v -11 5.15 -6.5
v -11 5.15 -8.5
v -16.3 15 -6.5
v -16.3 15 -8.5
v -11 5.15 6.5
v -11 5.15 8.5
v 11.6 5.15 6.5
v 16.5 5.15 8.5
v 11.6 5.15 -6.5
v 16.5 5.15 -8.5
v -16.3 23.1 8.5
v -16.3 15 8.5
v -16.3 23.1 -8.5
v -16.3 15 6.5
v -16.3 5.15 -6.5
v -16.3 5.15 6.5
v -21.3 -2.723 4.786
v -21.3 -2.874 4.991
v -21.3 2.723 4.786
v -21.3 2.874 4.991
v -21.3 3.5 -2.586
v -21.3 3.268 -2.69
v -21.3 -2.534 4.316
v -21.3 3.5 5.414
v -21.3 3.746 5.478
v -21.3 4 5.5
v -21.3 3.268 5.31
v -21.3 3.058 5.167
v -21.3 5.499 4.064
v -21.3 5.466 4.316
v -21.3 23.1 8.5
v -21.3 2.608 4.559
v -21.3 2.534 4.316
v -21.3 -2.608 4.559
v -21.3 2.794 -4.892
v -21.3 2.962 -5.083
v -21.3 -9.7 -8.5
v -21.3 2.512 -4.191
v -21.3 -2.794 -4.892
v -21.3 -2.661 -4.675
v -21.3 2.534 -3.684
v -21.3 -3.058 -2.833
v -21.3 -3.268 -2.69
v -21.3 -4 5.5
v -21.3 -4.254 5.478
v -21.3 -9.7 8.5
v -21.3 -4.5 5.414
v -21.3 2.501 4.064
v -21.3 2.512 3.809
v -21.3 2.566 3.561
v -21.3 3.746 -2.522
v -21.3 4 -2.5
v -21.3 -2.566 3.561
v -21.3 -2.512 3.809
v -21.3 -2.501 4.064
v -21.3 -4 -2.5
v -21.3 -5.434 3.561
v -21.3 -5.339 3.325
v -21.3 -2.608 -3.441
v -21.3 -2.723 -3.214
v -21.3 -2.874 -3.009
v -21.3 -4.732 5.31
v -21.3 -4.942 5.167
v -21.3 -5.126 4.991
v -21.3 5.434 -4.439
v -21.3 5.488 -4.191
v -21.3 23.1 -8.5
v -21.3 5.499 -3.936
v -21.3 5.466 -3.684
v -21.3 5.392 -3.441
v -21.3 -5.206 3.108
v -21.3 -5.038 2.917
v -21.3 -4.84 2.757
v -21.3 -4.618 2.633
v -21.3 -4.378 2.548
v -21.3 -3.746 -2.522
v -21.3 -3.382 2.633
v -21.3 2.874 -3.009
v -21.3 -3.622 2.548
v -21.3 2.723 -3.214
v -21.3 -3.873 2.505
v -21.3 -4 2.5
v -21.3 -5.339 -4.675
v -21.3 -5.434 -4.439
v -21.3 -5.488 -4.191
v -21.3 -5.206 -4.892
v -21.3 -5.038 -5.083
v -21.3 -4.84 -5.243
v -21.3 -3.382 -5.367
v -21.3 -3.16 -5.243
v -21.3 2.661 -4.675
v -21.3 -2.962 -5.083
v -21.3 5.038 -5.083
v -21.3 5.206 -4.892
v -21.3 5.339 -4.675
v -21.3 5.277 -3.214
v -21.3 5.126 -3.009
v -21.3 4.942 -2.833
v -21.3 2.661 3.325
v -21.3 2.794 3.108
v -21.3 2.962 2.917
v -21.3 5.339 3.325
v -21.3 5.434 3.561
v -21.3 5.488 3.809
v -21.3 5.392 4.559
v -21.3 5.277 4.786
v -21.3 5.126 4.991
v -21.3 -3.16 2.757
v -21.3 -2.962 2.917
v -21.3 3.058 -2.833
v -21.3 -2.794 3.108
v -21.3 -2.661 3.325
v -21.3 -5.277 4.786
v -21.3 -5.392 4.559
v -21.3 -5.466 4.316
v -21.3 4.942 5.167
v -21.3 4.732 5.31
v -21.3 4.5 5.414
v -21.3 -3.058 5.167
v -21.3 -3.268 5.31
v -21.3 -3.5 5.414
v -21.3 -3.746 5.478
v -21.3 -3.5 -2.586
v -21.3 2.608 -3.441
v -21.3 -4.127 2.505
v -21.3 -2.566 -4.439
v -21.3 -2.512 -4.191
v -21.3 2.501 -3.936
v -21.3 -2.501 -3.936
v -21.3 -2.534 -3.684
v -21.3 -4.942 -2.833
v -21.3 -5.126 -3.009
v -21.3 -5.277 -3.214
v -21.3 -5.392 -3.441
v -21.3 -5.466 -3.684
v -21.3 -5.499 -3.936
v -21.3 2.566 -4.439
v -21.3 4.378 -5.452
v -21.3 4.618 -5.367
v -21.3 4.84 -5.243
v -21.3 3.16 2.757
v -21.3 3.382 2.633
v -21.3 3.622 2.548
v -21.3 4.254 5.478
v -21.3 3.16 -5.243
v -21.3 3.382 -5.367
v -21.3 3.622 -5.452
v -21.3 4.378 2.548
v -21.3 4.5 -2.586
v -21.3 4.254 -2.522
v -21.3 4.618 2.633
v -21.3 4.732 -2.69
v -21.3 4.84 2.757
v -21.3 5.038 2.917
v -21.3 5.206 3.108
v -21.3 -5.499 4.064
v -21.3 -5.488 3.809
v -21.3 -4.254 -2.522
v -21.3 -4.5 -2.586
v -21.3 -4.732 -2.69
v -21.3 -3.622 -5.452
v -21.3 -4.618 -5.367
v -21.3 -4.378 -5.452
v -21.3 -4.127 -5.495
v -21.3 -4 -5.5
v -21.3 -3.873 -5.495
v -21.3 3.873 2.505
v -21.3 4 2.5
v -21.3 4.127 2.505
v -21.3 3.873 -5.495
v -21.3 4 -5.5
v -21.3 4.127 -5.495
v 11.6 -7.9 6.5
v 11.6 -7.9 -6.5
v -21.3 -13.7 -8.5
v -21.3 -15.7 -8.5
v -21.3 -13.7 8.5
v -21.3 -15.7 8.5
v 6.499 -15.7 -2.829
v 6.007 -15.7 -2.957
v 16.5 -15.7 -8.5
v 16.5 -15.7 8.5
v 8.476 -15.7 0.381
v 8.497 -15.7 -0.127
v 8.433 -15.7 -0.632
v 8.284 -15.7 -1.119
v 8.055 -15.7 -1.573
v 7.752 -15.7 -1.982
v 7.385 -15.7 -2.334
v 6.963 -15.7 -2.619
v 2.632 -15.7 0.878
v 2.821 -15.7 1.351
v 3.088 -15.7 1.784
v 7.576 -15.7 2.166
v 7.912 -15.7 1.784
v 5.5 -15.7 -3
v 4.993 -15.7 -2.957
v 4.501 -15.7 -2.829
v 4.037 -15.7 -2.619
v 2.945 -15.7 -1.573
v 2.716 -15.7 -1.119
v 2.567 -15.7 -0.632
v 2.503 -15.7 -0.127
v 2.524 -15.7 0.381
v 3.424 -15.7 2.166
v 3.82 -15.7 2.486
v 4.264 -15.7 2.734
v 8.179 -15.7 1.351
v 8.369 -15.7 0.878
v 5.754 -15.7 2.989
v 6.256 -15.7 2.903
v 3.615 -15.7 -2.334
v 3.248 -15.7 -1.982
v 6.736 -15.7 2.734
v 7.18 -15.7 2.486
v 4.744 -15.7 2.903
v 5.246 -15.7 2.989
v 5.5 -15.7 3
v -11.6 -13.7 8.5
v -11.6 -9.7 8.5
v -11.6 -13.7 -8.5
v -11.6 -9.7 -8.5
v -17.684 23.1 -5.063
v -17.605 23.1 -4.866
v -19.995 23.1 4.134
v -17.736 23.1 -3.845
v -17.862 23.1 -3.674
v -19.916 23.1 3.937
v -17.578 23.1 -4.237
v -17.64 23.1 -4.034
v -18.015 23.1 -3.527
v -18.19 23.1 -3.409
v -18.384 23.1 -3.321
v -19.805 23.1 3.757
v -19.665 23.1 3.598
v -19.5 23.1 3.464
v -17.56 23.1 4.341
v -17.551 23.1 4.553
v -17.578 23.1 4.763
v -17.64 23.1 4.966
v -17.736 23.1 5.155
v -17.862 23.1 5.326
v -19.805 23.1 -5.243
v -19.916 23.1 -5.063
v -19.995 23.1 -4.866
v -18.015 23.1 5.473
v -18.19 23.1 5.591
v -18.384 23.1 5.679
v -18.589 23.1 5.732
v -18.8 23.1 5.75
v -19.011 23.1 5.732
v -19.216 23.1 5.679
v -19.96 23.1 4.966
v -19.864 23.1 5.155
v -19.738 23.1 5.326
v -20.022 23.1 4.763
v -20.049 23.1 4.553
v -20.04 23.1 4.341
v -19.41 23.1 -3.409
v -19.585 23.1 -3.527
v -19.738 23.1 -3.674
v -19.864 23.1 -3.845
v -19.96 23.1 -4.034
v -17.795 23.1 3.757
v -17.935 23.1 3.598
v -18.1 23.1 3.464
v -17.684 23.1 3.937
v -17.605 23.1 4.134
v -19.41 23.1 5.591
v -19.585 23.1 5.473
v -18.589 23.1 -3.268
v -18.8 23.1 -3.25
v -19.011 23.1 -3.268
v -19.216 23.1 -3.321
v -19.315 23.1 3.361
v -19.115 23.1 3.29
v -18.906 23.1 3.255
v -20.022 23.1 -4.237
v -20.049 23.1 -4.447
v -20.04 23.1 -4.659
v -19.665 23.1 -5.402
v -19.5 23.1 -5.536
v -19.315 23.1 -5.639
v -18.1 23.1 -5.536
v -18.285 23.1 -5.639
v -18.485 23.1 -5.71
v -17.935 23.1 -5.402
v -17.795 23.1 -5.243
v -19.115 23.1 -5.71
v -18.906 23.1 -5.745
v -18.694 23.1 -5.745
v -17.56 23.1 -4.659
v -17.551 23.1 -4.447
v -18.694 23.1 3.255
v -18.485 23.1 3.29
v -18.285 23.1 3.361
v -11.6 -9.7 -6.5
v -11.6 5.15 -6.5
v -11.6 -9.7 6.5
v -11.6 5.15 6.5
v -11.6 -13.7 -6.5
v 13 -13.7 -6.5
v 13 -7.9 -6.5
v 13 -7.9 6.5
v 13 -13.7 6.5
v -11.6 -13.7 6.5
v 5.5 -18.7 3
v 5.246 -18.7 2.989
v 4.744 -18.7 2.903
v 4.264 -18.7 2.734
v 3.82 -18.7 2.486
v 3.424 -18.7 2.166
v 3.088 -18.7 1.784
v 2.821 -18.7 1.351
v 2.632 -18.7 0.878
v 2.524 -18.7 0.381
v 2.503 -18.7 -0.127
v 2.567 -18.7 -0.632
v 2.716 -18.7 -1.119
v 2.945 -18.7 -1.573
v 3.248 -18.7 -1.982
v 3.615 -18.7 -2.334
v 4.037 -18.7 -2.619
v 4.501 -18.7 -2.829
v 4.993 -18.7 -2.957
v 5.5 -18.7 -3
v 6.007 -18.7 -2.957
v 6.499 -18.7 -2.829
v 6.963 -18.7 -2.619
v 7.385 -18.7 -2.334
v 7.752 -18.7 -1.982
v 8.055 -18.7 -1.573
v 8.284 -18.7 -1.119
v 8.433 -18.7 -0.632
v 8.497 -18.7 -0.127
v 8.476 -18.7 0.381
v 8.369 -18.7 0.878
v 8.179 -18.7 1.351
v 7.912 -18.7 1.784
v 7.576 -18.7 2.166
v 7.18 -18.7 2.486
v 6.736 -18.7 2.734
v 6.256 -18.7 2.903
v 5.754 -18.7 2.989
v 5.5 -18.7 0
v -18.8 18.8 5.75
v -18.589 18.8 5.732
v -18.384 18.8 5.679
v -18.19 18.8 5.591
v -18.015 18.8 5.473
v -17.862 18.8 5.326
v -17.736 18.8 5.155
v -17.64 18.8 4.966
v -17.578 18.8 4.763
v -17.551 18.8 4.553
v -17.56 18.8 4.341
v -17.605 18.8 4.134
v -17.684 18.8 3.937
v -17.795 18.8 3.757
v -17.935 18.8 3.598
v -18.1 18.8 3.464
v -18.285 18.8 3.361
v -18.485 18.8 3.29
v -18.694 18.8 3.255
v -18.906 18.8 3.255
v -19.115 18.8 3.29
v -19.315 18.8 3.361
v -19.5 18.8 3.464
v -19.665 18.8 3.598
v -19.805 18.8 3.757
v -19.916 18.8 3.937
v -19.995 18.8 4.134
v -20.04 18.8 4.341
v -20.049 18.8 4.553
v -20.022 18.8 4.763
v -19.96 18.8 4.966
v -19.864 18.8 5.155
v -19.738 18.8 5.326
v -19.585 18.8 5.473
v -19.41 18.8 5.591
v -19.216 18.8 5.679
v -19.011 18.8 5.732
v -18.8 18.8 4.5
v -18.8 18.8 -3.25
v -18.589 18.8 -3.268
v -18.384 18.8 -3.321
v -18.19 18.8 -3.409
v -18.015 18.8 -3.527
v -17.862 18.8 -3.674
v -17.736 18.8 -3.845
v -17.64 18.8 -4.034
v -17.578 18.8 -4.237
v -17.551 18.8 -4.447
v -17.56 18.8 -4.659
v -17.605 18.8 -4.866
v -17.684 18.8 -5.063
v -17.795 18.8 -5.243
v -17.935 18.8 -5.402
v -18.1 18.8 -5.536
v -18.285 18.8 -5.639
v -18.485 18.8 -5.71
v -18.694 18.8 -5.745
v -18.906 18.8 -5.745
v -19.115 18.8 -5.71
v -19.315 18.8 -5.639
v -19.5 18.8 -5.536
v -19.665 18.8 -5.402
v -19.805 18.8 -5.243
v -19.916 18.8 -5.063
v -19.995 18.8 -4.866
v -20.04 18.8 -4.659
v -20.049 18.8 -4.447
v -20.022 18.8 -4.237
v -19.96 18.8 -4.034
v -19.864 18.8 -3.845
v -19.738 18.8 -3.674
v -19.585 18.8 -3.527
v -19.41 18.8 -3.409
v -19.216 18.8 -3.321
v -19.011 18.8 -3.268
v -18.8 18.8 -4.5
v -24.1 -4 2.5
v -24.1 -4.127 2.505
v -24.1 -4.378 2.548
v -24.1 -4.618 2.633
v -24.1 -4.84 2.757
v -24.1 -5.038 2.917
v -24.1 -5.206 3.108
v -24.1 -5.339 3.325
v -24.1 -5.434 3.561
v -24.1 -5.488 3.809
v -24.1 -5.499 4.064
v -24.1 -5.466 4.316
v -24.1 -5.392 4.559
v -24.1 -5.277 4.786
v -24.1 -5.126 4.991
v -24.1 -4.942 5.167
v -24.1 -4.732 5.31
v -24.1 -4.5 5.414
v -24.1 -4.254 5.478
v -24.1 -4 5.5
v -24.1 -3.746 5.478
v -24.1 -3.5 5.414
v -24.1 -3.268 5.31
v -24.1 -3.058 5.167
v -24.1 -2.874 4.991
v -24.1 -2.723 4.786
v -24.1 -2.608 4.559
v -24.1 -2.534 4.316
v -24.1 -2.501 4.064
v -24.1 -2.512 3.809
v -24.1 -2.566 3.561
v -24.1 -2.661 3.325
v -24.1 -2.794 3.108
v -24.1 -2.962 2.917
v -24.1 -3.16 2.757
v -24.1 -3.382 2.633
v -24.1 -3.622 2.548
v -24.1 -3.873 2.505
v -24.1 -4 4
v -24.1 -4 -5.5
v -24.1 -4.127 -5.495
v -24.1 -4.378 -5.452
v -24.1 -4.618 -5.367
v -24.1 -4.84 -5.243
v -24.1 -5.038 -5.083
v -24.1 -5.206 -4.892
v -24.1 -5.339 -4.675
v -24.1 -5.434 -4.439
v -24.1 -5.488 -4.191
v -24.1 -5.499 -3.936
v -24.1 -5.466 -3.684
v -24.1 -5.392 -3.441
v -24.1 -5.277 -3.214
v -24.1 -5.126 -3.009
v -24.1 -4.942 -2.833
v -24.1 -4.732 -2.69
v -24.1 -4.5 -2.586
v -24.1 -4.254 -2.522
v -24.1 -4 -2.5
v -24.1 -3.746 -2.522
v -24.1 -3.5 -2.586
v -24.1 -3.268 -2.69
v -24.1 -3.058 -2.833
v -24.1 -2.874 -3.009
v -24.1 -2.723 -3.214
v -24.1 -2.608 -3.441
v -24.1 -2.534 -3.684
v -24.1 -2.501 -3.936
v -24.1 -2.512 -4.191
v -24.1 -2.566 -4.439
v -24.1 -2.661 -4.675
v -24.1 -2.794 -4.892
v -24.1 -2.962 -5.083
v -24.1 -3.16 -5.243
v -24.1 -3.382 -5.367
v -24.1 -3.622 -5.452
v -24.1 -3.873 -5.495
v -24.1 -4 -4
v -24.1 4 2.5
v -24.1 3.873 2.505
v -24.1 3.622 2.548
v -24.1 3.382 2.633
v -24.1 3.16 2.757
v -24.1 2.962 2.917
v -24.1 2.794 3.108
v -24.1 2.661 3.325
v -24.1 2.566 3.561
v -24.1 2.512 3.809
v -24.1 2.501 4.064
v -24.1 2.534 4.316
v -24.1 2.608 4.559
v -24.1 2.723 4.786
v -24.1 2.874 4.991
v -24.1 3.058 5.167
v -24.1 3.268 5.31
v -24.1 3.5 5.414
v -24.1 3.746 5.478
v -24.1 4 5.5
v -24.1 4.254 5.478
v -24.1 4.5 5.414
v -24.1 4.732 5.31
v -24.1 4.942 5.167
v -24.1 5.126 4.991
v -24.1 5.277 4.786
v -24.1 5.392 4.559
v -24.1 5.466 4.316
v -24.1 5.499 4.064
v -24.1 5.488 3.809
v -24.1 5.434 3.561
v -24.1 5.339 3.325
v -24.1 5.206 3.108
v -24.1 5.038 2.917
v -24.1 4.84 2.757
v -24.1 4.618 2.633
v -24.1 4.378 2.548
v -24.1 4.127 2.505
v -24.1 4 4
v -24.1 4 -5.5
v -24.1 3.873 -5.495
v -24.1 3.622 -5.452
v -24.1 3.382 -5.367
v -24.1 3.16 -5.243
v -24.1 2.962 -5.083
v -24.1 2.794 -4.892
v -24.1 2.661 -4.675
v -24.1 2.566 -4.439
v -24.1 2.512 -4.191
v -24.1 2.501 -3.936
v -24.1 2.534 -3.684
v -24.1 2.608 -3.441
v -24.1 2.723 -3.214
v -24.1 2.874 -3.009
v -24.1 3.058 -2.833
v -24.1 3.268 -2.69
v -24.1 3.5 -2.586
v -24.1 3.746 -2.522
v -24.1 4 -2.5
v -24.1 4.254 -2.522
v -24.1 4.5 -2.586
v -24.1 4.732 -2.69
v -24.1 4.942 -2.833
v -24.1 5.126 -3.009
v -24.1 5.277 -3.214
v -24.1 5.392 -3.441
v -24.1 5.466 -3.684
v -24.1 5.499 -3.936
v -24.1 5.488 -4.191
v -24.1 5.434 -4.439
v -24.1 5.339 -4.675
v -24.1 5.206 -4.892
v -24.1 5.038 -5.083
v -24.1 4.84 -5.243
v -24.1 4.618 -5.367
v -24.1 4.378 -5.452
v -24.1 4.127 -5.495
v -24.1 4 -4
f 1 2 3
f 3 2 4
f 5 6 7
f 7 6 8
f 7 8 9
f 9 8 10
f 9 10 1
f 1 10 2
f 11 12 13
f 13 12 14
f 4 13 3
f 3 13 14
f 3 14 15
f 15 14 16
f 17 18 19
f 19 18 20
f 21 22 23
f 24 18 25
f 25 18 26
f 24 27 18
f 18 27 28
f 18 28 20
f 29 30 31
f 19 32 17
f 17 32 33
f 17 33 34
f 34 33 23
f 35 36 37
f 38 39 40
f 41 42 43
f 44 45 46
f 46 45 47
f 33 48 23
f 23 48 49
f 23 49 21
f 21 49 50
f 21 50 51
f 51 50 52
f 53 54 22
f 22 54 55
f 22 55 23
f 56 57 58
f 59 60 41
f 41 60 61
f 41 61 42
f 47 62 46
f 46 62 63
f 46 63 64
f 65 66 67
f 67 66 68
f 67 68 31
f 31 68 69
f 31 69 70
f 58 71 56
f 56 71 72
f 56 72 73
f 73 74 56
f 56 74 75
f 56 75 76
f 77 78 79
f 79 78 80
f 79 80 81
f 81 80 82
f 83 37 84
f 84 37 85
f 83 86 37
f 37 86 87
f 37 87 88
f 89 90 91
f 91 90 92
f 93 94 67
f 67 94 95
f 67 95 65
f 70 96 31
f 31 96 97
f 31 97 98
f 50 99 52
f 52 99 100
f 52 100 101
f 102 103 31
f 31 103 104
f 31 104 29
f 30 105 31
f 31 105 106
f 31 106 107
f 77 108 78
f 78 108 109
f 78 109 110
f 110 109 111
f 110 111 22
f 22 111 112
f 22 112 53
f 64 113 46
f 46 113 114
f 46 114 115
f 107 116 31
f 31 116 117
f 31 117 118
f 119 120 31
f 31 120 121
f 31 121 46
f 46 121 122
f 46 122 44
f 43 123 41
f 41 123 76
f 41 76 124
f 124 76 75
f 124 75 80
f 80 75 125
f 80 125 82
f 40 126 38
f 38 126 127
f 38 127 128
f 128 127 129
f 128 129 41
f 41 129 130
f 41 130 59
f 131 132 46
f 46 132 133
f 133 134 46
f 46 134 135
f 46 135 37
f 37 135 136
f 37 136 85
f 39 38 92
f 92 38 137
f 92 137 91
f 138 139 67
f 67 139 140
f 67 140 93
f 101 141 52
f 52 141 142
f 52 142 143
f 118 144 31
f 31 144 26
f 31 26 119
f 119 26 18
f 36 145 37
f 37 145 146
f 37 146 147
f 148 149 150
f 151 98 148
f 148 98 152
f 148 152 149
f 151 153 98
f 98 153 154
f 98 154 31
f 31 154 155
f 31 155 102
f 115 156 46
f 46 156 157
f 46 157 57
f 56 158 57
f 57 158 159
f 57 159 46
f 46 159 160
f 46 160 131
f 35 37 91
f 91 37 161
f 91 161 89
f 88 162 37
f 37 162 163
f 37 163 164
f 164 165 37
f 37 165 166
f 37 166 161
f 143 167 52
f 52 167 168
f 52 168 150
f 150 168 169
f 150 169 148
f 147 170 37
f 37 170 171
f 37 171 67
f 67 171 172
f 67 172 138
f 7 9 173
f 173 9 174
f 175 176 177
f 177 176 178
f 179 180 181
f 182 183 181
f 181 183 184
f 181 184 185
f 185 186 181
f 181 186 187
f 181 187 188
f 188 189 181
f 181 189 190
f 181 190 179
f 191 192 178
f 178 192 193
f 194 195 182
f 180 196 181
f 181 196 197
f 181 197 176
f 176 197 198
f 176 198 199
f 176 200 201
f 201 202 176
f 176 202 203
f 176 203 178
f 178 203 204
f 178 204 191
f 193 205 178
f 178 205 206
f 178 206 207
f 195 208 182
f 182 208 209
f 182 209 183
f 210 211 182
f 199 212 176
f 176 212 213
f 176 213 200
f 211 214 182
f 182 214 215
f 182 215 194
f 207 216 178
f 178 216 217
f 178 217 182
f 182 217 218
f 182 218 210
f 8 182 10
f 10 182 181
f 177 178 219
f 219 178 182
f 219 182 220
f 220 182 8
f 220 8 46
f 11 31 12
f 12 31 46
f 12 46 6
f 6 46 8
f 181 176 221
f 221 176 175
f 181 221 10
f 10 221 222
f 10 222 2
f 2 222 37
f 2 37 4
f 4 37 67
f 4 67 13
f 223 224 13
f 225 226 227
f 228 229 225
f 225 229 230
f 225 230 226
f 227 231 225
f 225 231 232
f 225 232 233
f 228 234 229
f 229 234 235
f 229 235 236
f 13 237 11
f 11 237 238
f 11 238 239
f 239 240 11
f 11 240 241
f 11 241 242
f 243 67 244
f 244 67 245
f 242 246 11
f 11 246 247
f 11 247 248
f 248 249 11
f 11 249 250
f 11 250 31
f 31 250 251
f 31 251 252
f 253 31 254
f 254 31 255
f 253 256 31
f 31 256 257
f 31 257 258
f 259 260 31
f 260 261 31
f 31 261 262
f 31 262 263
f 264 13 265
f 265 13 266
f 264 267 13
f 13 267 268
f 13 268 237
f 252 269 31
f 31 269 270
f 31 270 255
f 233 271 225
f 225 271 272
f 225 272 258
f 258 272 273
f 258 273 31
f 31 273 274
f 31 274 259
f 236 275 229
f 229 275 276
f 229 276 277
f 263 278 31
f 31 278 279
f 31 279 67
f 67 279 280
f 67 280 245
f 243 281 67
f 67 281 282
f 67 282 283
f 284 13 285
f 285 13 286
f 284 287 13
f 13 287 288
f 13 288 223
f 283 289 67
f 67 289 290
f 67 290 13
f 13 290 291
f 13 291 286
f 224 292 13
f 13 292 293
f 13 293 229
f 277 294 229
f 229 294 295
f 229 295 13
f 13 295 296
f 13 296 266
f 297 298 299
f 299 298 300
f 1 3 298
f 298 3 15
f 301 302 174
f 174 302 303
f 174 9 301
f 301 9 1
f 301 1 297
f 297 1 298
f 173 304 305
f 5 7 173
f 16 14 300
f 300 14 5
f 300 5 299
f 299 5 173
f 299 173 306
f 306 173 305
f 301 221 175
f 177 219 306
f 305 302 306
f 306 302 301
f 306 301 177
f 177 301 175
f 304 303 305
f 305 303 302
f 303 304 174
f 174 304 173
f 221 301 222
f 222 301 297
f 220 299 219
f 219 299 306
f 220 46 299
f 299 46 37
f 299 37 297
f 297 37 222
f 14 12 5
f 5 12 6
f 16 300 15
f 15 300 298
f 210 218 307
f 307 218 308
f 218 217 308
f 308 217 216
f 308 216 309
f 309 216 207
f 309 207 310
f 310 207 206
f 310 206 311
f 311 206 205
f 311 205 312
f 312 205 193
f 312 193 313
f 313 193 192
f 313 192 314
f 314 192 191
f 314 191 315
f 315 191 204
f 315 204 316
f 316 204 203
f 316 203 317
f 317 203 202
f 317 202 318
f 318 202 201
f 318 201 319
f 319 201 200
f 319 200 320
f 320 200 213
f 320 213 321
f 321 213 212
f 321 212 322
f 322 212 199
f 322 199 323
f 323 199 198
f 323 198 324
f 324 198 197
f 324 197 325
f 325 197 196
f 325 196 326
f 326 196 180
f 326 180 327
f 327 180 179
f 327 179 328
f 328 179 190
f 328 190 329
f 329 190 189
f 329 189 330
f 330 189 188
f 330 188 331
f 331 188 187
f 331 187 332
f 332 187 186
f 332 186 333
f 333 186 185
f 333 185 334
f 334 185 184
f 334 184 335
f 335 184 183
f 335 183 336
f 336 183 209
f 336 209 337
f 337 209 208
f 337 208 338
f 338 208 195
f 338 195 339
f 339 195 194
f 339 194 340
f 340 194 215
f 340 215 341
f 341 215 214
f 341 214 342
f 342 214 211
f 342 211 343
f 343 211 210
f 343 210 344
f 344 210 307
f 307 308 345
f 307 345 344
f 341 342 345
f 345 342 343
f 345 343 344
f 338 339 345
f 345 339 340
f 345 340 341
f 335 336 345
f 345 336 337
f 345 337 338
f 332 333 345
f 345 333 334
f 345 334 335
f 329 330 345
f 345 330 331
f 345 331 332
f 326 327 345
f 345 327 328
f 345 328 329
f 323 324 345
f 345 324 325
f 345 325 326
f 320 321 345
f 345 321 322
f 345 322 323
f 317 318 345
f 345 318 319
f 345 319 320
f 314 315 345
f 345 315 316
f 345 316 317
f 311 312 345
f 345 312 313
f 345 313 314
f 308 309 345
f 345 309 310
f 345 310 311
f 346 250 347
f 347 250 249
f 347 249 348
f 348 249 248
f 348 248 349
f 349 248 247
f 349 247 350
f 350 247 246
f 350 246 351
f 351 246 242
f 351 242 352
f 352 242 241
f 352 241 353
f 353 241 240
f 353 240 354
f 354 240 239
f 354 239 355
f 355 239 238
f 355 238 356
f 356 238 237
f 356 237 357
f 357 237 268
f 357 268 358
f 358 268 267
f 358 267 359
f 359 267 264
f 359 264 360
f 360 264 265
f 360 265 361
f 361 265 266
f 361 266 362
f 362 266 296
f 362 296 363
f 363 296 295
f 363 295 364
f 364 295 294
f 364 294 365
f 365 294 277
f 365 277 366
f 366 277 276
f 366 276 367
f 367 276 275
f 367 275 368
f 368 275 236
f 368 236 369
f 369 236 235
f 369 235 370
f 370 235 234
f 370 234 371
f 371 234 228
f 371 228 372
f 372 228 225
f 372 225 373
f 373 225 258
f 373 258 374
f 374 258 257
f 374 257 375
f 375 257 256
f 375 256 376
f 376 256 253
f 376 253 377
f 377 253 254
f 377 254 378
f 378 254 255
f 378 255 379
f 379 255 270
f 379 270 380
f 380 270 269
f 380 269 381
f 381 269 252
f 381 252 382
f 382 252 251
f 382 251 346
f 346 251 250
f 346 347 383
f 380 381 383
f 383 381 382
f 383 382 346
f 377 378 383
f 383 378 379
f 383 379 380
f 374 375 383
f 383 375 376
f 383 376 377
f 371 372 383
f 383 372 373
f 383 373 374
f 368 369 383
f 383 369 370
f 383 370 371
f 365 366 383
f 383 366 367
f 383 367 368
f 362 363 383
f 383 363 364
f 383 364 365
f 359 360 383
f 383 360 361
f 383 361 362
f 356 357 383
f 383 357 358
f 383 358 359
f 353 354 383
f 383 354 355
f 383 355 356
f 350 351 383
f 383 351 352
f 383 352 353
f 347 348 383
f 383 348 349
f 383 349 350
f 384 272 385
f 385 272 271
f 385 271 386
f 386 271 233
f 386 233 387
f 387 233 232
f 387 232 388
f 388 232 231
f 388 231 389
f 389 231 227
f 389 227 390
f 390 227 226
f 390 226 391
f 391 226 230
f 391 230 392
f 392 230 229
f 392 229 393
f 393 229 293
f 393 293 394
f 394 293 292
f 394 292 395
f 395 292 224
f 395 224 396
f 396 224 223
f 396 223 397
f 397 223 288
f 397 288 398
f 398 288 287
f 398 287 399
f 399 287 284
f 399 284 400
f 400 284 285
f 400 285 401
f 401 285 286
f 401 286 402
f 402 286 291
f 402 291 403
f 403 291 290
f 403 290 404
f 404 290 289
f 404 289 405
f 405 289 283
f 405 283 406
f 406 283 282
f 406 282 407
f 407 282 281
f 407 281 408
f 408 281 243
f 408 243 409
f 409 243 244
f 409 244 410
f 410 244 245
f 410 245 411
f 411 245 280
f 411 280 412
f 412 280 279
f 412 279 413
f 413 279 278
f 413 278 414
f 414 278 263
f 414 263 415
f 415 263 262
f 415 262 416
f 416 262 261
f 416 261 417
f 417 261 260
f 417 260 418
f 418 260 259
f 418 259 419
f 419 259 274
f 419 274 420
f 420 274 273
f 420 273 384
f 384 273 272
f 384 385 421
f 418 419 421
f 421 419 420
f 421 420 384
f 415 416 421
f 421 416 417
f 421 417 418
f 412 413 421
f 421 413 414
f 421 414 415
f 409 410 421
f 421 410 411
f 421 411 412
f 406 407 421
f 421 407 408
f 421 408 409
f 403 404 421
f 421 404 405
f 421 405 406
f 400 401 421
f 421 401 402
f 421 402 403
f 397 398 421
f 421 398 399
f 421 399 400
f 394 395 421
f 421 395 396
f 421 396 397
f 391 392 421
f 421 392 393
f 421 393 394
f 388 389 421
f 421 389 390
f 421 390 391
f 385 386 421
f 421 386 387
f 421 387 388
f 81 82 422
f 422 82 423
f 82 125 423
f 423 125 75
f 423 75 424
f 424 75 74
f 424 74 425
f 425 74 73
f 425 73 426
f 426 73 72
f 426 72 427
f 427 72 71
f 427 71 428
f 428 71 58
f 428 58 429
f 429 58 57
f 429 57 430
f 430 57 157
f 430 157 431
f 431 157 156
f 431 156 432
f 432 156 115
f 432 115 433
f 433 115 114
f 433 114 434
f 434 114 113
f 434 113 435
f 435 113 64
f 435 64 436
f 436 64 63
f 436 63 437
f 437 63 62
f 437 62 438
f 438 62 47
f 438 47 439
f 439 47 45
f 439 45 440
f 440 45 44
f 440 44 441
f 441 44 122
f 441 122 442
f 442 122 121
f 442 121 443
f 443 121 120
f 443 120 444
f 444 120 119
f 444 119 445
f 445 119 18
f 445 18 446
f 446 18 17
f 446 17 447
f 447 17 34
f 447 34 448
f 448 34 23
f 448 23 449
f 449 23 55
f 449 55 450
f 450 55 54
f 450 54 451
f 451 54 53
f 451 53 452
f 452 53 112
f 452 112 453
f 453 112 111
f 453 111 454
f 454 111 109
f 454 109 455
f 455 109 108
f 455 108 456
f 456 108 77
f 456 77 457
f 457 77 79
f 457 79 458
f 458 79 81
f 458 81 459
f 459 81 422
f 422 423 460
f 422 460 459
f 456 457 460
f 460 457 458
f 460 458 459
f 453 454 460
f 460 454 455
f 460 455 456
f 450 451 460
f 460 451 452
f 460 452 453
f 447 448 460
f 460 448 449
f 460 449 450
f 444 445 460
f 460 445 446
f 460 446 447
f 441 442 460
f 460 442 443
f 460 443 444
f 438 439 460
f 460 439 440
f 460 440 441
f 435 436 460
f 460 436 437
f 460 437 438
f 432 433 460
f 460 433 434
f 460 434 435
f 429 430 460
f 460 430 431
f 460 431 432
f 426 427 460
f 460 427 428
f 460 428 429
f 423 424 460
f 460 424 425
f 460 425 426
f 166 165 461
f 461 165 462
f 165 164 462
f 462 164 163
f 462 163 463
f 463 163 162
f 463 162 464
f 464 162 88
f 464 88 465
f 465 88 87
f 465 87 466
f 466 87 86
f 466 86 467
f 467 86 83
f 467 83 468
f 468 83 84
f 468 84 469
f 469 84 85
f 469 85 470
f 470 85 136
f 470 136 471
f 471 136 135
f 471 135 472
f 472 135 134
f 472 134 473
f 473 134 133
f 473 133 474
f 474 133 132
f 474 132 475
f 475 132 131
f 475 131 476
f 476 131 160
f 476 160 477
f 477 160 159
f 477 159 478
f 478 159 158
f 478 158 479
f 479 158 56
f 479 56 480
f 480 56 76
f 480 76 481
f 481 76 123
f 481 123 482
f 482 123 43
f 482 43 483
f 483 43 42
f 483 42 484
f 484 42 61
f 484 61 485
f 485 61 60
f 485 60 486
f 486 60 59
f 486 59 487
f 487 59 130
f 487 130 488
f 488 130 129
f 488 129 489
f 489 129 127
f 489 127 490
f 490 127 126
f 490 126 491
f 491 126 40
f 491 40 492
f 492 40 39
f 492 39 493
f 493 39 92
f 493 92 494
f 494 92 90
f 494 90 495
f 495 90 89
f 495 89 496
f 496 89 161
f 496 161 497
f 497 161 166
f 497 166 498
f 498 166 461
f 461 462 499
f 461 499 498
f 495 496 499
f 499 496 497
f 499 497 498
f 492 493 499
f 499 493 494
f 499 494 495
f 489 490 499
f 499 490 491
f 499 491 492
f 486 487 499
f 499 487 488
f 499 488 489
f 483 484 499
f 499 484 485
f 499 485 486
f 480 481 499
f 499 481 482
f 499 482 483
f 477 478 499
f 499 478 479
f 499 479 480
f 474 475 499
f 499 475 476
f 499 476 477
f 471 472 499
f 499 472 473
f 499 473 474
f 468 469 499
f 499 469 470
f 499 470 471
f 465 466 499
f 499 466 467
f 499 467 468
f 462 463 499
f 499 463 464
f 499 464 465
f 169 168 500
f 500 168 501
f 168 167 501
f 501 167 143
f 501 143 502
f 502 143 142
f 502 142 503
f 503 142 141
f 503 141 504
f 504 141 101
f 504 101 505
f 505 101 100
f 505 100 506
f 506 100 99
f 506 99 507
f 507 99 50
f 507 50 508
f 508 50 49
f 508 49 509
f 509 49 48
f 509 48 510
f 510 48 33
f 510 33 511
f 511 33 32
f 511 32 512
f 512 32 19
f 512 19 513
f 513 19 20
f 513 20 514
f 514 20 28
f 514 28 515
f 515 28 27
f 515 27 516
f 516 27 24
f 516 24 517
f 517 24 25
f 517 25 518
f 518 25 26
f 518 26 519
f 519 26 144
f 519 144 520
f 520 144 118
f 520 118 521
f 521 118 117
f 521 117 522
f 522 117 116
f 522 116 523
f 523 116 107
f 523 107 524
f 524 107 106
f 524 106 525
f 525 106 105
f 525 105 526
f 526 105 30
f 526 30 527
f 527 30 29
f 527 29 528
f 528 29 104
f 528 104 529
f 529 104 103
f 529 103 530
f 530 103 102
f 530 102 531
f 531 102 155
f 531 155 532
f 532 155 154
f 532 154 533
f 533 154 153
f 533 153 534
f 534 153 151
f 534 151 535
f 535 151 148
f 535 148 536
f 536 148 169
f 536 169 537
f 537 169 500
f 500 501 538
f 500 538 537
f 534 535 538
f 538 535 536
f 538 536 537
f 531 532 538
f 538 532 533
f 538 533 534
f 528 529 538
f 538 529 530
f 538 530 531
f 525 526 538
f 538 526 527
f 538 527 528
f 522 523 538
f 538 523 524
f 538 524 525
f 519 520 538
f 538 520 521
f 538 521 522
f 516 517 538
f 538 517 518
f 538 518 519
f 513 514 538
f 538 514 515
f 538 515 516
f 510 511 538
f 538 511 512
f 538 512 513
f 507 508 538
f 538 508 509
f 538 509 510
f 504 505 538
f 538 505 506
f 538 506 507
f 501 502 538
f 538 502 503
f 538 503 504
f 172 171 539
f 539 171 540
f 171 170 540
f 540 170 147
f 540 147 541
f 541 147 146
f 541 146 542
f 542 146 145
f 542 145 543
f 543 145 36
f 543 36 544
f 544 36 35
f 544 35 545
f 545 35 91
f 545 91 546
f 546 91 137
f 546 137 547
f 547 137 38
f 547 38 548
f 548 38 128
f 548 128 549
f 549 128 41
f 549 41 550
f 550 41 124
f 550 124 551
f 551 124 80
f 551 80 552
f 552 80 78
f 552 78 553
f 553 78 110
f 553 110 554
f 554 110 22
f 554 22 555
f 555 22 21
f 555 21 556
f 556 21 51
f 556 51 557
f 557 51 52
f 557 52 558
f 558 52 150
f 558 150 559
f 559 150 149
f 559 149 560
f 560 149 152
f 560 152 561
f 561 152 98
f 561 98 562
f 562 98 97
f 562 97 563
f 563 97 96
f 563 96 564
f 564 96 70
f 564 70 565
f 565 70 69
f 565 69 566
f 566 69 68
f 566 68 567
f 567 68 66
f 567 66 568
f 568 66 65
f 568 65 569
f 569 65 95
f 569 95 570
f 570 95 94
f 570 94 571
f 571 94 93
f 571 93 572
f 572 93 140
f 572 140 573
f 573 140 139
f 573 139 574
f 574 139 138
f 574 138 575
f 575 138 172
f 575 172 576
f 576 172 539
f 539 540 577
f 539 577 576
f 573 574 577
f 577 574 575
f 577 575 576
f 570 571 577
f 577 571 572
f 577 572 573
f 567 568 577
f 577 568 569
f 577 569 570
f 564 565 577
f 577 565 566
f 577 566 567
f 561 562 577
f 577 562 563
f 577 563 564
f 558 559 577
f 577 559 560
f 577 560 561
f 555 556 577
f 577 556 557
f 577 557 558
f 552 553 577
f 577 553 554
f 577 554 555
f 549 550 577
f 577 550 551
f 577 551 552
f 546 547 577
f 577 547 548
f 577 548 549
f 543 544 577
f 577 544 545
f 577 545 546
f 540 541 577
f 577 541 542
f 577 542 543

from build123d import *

# Parameters (mm, degrees)
SKETCH1_W               = 37.8
SKETCH1_H               = 20.85
BOSS_EXTRUDE1_DEPTH     = 8.5
SKETCH2_W               = 5
SKETCH2_H               = 17.95
BOSS_EXTRUDE2_DEPTH     = 8.5
SKETCH3_W               = 23.2
SKETCH3_H               = 13
CUT_EXTRUDE1_DEPTH      = 18.85
SKETCH4_W               = 1.4
SKETCH4_H               = 13
CUT_EXTRUDE3_DEPTH      = 5.8
CUT_EXTRUDE4_DEPTH      = 33.550729639
CUT_EXTRUDE4_DEPTH_BACK = 33.550729639
SKETCH5_W               = 9.7
SKETCH5_H               = 4
BOSS_EXTRUDE3_DEPTH     = 8.5
SKETCH7_W               = 5.3
SKETCH7_H               = 13
CUT_EXTRUDE5_DEPTH      = 9.85
SKETCH8_R               = 3
BOSS_EXTRUDE4_DEPTH     = 3
SKETCH9_R               = 1.25
CUT_EXTRUDE6_DEPTH      = 4.3
SKETCH10_R              = 1.25
CUT_EXTRUDE7_DEPTH      = 4.3
SKETCH11_R              = 1.5
BOSS_EXTRUDE5_DEPTH     = 2.8


with BuildPart() as part:
    # Sketch1 → Boss-Extrude1 (new, symmetric)
    with BuildSketch(Plane.XY):
        with Locations((-2.4, -5.275)):
            Rectangle(SKETCH1_W, SKETCH1_H)
    extrude(amount=BOSS_EXTRUDE1_DEPTH, both=True)

    # Sketch2 → Boss-Extrude2 (add, symmetric)
    with BuildSketch(Plane.XY):
        with Locations((-18.8, 14.125)):
            Rectangle(SKETCH2_W, SKETCH2_H)
    extrude(amount=BOSS_EXTRUDE2_DEPTH, both=True)

    # Sketch3 → Cut-Extrude1 (cut)
    with BuildSketch(Plane(origin=(0, 5.15, 0), x_dir=(1, 0, 0), z_dir=(0, 1, 0))):
        Rectangle(SKETCH3_W, SKETCH3_H)
    extrude(amount=-CUT_EXTRUDE1_DEPTH, mode=Mode.SUBTRACT)

    # Sketch4 → Cut-Extrude3 (cut)
    with BuildSketch(Plane(origin=(0, -13.7, 0), x_dir=(1, 0, 0), z_dir=(0, 1, 0))):
        with Locations((12.3, 0)):
            Rectangle(SKETCH4_W, SKETCH4_H)
    extrude(amount=CUT_EXTRUDE3_DEPTH, mode=Mode.SUBTRACT)

    # Sketch5 → Cut-Extrude4 (cut, two sides: drawn at the far end of the back side and taken through both)
    with BuildSketch(Plane.XY.offset(-CUT_EXTRUDE4_DEPTH_BACK)):
        with Locations((-16.45, -11.7)):
            Rectangle(SKETCH5_W, SKETCH5_H)
    extrude(amount=CUT_EXTRUDE4_DEPTH + CUT_EXTRUDE4_DEPTH_BACK, mode=Mode.SUBTRACT)

    # Sketch6 → Boss-Extrude3 (add, symmetric)
    with BuildSketch(Plane.XY):
        Polygon((-16.3, 5.15), (-11, 5.15), (-16.3, 15), align=None)
    extrude(amount=BOSS_EXTRUDE3_DEPTH, both=True)

    # Sketch7 → Cut-Extrude5 (cut)
    with BuildSketch(Plane(origin=(0, 15, 0), x_dir=(1, 0, 0), z_dir=(0, 1, 0))):
        with Locations((-13.65, 0)):
            Rectangle(SKETCH7_W, SKETCH7_H)
    extrude(amount=-CUT_EXTRUDE5_DEPTH, mode=Mode.SUBTRACT)

    # Sketch8 → Boss-Extrude4 (add)
    with BuildSketch(Plane(origin=(0, -18.7, 0), x_dir=(1, 0, 0), z_dir=(0, 1, 0))):
        with Locations(Location((5.5, 0, 0), (0, 0, 270))):
            Circle(SKETCH8_R)
    extrude(amount=BOSS_EXTRUDE4_DEPTH)

    # Sketch9 → Cut-Extrude6 (cut)
    with BuildSketch(Plane(origin=(0, 23.1, 0), x_dir=(1, 0, 0), z_dir=(0, 1, 0))):
        with Locations(Location((-18.8, -4.5, 0), (0, 0, 270))):
            Circle(SKETCH9_R)
    extrude(amount=-CUT_EXTRUDE6_DEPTH, mode=Mode.SUBTRACT)

    # Sketch10 → Cut-Extrude7 (cut)
    with BuildSketch(Plane(origin=(0, 23.1, 0), x_dir=(1, 0, 0), z_dir=(0, 1, 0))):
        with Locations(Location((-18.8, 4.5, 0), (0, 0, 270))):
            Circle(SKETCH10_R)
    extrude(amount=-CUT_EXTRUDE7_DEPTH, mode=Mode.SUBTRACT)

    # Sketch11 → Boss-Extrude5 (add)
    with BuildSketch(Plane(origin=(-24.1, 0, 0), x_dir=(0, 0, -1), z_dir=(1, 0, 0))):
        with Locations((-4, -4)):
            Circle(SKETCH11_R)
        with Locations((4, -4)):
            Circle(SKETCH11_R)
        with Locations((-4, 4)):
            Circle(SKETCH11_R)
        with Locations((4, 4)):
            Circle(SKETCH11_R)
    extrude(amount=BOSS_EXTRUDE5_DEPTH)


solid = part.part
